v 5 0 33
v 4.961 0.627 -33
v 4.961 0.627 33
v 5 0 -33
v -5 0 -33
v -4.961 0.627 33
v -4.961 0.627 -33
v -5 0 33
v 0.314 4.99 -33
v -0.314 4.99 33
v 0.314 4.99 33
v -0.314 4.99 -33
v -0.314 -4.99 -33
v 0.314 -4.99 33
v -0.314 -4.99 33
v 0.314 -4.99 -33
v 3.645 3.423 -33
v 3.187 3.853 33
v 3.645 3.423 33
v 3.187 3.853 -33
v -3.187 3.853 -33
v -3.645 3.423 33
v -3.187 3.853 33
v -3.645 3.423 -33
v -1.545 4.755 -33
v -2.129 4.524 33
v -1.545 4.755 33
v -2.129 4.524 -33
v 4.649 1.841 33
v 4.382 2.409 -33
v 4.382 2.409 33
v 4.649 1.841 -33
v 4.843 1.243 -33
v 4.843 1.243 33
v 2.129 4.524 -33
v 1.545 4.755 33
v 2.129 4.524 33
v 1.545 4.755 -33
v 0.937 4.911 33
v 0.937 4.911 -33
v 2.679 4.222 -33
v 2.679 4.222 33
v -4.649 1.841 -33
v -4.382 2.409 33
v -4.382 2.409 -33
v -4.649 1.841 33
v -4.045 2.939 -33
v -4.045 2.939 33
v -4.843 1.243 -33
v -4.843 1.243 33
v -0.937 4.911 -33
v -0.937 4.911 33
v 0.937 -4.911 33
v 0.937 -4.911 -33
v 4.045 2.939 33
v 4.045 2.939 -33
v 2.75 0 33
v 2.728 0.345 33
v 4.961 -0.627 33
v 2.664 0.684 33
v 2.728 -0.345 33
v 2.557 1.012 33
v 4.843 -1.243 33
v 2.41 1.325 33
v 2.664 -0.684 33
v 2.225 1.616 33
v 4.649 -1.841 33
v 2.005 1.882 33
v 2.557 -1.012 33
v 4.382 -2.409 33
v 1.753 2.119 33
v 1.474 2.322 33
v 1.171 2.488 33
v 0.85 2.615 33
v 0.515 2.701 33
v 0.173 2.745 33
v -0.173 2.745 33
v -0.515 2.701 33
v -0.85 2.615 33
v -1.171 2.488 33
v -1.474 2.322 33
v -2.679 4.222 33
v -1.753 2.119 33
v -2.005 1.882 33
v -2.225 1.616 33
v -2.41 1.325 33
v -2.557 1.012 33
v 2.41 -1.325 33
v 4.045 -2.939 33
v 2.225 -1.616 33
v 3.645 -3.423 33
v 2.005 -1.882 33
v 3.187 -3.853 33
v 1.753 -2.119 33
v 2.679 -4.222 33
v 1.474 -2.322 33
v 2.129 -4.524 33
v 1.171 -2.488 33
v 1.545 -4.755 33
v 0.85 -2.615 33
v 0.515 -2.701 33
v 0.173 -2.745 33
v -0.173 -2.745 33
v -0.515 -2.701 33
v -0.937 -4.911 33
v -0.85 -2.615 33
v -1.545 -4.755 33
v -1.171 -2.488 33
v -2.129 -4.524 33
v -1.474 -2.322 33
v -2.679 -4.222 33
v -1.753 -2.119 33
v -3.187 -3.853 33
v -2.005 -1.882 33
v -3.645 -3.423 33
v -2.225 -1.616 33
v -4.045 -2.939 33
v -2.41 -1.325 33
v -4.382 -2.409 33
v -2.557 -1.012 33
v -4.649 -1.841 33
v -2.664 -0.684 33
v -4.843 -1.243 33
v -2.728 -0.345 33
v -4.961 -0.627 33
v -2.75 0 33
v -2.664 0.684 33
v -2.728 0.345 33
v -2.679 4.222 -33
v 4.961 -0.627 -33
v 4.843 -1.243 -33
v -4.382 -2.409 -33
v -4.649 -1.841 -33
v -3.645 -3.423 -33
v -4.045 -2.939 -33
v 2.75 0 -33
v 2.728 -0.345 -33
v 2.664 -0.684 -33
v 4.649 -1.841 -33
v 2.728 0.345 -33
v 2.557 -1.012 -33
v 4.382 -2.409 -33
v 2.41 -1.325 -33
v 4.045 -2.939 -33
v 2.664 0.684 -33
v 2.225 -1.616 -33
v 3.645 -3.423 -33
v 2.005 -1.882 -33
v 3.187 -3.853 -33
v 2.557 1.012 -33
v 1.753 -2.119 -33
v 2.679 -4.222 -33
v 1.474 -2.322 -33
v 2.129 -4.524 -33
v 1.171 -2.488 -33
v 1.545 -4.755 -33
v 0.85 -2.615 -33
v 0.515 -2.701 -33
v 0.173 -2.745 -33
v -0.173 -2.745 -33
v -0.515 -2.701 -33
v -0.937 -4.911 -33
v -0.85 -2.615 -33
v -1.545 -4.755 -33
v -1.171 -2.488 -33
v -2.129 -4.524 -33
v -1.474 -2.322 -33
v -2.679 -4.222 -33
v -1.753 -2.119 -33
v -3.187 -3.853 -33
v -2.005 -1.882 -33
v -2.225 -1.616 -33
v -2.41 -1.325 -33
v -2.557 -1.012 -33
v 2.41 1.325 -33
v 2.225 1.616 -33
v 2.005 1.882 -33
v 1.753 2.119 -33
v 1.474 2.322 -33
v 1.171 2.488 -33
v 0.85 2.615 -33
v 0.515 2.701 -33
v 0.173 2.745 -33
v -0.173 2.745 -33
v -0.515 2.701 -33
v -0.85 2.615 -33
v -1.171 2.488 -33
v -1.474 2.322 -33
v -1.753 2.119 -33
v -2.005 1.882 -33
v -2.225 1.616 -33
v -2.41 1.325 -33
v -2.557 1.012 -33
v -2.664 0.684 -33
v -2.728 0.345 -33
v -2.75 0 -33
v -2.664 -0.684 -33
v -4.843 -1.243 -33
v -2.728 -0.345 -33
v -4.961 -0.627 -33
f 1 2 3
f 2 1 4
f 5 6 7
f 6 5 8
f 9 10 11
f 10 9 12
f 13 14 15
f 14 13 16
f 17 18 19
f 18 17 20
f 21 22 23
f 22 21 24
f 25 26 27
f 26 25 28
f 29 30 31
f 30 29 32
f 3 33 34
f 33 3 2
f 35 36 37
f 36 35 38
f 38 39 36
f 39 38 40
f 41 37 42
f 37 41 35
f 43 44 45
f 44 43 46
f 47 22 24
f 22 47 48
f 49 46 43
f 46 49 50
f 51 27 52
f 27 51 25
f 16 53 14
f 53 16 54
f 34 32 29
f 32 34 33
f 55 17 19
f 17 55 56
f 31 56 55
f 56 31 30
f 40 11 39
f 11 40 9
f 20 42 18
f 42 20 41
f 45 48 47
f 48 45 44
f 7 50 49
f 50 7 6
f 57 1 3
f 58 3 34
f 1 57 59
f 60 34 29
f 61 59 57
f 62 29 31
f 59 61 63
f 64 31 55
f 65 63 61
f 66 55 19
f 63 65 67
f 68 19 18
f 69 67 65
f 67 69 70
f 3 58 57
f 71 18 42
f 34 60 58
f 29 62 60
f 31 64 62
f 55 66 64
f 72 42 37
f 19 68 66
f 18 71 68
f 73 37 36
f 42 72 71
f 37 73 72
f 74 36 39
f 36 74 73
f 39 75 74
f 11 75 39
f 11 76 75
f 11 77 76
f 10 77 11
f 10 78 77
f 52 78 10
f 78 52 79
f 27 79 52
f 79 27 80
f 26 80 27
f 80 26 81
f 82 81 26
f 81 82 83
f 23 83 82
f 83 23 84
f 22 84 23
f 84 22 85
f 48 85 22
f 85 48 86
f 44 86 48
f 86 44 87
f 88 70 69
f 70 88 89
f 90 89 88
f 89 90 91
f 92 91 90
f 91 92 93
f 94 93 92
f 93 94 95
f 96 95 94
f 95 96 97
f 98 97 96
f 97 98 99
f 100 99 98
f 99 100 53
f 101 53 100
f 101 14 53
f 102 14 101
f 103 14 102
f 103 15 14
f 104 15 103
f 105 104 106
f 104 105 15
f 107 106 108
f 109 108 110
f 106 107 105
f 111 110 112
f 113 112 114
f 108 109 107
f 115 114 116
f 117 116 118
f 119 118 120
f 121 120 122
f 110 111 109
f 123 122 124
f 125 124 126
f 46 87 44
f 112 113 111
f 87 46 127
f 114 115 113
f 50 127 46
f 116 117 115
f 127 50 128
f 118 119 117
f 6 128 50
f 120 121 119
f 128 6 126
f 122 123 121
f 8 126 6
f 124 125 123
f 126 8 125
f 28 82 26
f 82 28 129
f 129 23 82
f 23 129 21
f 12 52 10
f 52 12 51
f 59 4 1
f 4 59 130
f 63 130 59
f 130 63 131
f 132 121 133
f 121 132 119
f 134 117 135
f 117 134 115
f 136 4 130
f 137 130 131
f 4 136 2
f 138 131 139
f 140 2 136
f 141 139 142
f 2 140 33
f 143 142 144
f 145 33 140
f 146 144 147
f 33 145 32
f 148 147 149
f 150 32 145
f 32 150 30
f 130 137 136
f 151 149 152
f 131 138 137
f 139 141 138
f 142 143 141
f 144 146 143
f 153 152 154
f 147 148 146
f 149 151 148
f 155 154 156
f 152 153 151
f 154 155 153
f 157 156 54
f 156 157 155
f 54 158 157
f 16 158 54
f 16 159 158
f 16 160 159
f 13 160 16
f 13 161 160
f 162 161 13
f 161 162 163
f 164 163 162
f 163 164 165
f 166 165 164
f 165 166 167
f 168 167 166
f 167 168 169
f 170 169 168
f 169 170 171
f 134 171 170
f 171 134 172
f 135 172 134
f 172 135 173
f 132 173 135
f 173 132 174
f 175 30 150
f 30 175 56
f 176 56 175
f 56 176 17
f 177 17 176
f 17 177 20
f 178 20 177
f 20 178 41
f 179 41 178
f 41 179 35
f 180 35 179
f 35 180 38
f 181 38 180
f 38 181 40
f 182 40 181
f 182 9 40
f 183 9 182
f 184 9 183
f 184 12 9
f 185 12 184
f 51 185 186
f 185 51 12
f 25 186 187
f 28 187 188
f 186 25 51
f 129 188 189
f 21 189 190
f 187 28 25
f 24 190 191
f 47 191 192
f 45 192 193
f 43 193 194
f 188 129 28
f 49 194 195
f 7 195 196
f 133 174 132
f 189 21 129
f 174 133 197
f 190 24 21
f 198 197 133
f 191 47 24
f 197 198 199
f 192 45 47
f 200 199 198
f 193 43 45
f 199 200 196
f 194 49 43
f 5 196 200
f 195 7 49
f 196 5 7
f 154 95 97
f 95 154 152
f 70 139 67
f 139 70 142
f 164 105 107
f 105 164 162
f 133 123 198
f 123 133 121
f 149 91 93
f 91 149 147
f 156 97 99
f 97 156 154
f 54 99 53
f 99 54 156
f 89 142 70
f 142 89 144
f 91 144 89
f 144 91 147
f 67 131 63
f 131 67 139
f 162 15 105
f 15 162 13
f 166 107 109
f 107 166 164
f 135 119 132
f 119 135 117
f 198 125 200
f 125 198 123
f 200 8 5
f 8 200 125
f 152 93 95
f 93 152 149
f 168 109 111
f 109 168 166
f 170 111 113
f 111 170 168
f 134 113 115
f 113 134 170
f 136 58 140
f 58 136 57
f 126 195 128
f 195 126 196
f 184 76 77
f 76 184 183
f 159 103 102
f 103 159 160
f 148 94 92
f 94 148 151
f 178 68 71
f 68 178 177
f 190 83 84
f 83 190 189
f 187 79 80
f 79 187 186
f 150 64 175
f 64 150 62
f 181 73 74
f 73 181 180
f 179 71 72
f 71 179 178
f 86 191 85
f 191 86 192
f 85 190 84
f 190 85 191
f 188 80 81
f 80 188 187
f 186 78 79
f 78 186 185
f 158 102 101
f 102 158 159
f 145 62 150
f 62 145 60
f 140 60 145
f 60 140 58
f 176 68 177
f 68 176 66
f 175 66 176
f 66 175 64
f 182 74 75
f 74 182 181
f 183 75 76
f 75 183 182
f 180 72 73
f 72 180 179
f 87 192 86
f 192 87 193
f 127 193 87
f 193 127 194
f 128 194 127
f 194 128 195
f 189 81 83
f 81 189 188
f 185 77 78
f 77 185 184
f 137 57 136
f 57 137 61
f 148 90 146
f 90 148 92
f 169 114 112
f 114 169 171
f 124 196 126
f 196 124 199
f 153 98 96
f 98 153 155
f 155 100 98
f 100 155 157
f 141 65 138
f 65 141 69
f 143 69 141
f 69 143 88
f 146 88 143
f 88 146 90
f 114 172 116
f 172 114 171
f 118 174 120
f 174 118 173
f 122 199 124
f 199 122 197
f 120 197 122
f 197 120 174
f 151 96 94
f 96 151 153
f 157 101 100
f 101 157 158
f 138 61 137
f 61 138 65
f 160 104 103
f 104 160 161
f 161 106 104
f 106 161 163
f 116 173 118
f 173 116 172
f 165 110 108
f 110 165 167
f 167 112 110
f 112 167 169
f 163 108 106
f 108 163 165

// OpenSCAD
$fn = 50;


difference() {
	union() {
		translate(v = [0, 0, -33.0000000000]) {
			cylinder(h = 66, r = 5.0000000000);
		}
	}
	union() {
		translate(v = [0, 0, -100.0000000000]) {
			cylinder(h = 200, r = 2.7500000000);
		}
	}
}
